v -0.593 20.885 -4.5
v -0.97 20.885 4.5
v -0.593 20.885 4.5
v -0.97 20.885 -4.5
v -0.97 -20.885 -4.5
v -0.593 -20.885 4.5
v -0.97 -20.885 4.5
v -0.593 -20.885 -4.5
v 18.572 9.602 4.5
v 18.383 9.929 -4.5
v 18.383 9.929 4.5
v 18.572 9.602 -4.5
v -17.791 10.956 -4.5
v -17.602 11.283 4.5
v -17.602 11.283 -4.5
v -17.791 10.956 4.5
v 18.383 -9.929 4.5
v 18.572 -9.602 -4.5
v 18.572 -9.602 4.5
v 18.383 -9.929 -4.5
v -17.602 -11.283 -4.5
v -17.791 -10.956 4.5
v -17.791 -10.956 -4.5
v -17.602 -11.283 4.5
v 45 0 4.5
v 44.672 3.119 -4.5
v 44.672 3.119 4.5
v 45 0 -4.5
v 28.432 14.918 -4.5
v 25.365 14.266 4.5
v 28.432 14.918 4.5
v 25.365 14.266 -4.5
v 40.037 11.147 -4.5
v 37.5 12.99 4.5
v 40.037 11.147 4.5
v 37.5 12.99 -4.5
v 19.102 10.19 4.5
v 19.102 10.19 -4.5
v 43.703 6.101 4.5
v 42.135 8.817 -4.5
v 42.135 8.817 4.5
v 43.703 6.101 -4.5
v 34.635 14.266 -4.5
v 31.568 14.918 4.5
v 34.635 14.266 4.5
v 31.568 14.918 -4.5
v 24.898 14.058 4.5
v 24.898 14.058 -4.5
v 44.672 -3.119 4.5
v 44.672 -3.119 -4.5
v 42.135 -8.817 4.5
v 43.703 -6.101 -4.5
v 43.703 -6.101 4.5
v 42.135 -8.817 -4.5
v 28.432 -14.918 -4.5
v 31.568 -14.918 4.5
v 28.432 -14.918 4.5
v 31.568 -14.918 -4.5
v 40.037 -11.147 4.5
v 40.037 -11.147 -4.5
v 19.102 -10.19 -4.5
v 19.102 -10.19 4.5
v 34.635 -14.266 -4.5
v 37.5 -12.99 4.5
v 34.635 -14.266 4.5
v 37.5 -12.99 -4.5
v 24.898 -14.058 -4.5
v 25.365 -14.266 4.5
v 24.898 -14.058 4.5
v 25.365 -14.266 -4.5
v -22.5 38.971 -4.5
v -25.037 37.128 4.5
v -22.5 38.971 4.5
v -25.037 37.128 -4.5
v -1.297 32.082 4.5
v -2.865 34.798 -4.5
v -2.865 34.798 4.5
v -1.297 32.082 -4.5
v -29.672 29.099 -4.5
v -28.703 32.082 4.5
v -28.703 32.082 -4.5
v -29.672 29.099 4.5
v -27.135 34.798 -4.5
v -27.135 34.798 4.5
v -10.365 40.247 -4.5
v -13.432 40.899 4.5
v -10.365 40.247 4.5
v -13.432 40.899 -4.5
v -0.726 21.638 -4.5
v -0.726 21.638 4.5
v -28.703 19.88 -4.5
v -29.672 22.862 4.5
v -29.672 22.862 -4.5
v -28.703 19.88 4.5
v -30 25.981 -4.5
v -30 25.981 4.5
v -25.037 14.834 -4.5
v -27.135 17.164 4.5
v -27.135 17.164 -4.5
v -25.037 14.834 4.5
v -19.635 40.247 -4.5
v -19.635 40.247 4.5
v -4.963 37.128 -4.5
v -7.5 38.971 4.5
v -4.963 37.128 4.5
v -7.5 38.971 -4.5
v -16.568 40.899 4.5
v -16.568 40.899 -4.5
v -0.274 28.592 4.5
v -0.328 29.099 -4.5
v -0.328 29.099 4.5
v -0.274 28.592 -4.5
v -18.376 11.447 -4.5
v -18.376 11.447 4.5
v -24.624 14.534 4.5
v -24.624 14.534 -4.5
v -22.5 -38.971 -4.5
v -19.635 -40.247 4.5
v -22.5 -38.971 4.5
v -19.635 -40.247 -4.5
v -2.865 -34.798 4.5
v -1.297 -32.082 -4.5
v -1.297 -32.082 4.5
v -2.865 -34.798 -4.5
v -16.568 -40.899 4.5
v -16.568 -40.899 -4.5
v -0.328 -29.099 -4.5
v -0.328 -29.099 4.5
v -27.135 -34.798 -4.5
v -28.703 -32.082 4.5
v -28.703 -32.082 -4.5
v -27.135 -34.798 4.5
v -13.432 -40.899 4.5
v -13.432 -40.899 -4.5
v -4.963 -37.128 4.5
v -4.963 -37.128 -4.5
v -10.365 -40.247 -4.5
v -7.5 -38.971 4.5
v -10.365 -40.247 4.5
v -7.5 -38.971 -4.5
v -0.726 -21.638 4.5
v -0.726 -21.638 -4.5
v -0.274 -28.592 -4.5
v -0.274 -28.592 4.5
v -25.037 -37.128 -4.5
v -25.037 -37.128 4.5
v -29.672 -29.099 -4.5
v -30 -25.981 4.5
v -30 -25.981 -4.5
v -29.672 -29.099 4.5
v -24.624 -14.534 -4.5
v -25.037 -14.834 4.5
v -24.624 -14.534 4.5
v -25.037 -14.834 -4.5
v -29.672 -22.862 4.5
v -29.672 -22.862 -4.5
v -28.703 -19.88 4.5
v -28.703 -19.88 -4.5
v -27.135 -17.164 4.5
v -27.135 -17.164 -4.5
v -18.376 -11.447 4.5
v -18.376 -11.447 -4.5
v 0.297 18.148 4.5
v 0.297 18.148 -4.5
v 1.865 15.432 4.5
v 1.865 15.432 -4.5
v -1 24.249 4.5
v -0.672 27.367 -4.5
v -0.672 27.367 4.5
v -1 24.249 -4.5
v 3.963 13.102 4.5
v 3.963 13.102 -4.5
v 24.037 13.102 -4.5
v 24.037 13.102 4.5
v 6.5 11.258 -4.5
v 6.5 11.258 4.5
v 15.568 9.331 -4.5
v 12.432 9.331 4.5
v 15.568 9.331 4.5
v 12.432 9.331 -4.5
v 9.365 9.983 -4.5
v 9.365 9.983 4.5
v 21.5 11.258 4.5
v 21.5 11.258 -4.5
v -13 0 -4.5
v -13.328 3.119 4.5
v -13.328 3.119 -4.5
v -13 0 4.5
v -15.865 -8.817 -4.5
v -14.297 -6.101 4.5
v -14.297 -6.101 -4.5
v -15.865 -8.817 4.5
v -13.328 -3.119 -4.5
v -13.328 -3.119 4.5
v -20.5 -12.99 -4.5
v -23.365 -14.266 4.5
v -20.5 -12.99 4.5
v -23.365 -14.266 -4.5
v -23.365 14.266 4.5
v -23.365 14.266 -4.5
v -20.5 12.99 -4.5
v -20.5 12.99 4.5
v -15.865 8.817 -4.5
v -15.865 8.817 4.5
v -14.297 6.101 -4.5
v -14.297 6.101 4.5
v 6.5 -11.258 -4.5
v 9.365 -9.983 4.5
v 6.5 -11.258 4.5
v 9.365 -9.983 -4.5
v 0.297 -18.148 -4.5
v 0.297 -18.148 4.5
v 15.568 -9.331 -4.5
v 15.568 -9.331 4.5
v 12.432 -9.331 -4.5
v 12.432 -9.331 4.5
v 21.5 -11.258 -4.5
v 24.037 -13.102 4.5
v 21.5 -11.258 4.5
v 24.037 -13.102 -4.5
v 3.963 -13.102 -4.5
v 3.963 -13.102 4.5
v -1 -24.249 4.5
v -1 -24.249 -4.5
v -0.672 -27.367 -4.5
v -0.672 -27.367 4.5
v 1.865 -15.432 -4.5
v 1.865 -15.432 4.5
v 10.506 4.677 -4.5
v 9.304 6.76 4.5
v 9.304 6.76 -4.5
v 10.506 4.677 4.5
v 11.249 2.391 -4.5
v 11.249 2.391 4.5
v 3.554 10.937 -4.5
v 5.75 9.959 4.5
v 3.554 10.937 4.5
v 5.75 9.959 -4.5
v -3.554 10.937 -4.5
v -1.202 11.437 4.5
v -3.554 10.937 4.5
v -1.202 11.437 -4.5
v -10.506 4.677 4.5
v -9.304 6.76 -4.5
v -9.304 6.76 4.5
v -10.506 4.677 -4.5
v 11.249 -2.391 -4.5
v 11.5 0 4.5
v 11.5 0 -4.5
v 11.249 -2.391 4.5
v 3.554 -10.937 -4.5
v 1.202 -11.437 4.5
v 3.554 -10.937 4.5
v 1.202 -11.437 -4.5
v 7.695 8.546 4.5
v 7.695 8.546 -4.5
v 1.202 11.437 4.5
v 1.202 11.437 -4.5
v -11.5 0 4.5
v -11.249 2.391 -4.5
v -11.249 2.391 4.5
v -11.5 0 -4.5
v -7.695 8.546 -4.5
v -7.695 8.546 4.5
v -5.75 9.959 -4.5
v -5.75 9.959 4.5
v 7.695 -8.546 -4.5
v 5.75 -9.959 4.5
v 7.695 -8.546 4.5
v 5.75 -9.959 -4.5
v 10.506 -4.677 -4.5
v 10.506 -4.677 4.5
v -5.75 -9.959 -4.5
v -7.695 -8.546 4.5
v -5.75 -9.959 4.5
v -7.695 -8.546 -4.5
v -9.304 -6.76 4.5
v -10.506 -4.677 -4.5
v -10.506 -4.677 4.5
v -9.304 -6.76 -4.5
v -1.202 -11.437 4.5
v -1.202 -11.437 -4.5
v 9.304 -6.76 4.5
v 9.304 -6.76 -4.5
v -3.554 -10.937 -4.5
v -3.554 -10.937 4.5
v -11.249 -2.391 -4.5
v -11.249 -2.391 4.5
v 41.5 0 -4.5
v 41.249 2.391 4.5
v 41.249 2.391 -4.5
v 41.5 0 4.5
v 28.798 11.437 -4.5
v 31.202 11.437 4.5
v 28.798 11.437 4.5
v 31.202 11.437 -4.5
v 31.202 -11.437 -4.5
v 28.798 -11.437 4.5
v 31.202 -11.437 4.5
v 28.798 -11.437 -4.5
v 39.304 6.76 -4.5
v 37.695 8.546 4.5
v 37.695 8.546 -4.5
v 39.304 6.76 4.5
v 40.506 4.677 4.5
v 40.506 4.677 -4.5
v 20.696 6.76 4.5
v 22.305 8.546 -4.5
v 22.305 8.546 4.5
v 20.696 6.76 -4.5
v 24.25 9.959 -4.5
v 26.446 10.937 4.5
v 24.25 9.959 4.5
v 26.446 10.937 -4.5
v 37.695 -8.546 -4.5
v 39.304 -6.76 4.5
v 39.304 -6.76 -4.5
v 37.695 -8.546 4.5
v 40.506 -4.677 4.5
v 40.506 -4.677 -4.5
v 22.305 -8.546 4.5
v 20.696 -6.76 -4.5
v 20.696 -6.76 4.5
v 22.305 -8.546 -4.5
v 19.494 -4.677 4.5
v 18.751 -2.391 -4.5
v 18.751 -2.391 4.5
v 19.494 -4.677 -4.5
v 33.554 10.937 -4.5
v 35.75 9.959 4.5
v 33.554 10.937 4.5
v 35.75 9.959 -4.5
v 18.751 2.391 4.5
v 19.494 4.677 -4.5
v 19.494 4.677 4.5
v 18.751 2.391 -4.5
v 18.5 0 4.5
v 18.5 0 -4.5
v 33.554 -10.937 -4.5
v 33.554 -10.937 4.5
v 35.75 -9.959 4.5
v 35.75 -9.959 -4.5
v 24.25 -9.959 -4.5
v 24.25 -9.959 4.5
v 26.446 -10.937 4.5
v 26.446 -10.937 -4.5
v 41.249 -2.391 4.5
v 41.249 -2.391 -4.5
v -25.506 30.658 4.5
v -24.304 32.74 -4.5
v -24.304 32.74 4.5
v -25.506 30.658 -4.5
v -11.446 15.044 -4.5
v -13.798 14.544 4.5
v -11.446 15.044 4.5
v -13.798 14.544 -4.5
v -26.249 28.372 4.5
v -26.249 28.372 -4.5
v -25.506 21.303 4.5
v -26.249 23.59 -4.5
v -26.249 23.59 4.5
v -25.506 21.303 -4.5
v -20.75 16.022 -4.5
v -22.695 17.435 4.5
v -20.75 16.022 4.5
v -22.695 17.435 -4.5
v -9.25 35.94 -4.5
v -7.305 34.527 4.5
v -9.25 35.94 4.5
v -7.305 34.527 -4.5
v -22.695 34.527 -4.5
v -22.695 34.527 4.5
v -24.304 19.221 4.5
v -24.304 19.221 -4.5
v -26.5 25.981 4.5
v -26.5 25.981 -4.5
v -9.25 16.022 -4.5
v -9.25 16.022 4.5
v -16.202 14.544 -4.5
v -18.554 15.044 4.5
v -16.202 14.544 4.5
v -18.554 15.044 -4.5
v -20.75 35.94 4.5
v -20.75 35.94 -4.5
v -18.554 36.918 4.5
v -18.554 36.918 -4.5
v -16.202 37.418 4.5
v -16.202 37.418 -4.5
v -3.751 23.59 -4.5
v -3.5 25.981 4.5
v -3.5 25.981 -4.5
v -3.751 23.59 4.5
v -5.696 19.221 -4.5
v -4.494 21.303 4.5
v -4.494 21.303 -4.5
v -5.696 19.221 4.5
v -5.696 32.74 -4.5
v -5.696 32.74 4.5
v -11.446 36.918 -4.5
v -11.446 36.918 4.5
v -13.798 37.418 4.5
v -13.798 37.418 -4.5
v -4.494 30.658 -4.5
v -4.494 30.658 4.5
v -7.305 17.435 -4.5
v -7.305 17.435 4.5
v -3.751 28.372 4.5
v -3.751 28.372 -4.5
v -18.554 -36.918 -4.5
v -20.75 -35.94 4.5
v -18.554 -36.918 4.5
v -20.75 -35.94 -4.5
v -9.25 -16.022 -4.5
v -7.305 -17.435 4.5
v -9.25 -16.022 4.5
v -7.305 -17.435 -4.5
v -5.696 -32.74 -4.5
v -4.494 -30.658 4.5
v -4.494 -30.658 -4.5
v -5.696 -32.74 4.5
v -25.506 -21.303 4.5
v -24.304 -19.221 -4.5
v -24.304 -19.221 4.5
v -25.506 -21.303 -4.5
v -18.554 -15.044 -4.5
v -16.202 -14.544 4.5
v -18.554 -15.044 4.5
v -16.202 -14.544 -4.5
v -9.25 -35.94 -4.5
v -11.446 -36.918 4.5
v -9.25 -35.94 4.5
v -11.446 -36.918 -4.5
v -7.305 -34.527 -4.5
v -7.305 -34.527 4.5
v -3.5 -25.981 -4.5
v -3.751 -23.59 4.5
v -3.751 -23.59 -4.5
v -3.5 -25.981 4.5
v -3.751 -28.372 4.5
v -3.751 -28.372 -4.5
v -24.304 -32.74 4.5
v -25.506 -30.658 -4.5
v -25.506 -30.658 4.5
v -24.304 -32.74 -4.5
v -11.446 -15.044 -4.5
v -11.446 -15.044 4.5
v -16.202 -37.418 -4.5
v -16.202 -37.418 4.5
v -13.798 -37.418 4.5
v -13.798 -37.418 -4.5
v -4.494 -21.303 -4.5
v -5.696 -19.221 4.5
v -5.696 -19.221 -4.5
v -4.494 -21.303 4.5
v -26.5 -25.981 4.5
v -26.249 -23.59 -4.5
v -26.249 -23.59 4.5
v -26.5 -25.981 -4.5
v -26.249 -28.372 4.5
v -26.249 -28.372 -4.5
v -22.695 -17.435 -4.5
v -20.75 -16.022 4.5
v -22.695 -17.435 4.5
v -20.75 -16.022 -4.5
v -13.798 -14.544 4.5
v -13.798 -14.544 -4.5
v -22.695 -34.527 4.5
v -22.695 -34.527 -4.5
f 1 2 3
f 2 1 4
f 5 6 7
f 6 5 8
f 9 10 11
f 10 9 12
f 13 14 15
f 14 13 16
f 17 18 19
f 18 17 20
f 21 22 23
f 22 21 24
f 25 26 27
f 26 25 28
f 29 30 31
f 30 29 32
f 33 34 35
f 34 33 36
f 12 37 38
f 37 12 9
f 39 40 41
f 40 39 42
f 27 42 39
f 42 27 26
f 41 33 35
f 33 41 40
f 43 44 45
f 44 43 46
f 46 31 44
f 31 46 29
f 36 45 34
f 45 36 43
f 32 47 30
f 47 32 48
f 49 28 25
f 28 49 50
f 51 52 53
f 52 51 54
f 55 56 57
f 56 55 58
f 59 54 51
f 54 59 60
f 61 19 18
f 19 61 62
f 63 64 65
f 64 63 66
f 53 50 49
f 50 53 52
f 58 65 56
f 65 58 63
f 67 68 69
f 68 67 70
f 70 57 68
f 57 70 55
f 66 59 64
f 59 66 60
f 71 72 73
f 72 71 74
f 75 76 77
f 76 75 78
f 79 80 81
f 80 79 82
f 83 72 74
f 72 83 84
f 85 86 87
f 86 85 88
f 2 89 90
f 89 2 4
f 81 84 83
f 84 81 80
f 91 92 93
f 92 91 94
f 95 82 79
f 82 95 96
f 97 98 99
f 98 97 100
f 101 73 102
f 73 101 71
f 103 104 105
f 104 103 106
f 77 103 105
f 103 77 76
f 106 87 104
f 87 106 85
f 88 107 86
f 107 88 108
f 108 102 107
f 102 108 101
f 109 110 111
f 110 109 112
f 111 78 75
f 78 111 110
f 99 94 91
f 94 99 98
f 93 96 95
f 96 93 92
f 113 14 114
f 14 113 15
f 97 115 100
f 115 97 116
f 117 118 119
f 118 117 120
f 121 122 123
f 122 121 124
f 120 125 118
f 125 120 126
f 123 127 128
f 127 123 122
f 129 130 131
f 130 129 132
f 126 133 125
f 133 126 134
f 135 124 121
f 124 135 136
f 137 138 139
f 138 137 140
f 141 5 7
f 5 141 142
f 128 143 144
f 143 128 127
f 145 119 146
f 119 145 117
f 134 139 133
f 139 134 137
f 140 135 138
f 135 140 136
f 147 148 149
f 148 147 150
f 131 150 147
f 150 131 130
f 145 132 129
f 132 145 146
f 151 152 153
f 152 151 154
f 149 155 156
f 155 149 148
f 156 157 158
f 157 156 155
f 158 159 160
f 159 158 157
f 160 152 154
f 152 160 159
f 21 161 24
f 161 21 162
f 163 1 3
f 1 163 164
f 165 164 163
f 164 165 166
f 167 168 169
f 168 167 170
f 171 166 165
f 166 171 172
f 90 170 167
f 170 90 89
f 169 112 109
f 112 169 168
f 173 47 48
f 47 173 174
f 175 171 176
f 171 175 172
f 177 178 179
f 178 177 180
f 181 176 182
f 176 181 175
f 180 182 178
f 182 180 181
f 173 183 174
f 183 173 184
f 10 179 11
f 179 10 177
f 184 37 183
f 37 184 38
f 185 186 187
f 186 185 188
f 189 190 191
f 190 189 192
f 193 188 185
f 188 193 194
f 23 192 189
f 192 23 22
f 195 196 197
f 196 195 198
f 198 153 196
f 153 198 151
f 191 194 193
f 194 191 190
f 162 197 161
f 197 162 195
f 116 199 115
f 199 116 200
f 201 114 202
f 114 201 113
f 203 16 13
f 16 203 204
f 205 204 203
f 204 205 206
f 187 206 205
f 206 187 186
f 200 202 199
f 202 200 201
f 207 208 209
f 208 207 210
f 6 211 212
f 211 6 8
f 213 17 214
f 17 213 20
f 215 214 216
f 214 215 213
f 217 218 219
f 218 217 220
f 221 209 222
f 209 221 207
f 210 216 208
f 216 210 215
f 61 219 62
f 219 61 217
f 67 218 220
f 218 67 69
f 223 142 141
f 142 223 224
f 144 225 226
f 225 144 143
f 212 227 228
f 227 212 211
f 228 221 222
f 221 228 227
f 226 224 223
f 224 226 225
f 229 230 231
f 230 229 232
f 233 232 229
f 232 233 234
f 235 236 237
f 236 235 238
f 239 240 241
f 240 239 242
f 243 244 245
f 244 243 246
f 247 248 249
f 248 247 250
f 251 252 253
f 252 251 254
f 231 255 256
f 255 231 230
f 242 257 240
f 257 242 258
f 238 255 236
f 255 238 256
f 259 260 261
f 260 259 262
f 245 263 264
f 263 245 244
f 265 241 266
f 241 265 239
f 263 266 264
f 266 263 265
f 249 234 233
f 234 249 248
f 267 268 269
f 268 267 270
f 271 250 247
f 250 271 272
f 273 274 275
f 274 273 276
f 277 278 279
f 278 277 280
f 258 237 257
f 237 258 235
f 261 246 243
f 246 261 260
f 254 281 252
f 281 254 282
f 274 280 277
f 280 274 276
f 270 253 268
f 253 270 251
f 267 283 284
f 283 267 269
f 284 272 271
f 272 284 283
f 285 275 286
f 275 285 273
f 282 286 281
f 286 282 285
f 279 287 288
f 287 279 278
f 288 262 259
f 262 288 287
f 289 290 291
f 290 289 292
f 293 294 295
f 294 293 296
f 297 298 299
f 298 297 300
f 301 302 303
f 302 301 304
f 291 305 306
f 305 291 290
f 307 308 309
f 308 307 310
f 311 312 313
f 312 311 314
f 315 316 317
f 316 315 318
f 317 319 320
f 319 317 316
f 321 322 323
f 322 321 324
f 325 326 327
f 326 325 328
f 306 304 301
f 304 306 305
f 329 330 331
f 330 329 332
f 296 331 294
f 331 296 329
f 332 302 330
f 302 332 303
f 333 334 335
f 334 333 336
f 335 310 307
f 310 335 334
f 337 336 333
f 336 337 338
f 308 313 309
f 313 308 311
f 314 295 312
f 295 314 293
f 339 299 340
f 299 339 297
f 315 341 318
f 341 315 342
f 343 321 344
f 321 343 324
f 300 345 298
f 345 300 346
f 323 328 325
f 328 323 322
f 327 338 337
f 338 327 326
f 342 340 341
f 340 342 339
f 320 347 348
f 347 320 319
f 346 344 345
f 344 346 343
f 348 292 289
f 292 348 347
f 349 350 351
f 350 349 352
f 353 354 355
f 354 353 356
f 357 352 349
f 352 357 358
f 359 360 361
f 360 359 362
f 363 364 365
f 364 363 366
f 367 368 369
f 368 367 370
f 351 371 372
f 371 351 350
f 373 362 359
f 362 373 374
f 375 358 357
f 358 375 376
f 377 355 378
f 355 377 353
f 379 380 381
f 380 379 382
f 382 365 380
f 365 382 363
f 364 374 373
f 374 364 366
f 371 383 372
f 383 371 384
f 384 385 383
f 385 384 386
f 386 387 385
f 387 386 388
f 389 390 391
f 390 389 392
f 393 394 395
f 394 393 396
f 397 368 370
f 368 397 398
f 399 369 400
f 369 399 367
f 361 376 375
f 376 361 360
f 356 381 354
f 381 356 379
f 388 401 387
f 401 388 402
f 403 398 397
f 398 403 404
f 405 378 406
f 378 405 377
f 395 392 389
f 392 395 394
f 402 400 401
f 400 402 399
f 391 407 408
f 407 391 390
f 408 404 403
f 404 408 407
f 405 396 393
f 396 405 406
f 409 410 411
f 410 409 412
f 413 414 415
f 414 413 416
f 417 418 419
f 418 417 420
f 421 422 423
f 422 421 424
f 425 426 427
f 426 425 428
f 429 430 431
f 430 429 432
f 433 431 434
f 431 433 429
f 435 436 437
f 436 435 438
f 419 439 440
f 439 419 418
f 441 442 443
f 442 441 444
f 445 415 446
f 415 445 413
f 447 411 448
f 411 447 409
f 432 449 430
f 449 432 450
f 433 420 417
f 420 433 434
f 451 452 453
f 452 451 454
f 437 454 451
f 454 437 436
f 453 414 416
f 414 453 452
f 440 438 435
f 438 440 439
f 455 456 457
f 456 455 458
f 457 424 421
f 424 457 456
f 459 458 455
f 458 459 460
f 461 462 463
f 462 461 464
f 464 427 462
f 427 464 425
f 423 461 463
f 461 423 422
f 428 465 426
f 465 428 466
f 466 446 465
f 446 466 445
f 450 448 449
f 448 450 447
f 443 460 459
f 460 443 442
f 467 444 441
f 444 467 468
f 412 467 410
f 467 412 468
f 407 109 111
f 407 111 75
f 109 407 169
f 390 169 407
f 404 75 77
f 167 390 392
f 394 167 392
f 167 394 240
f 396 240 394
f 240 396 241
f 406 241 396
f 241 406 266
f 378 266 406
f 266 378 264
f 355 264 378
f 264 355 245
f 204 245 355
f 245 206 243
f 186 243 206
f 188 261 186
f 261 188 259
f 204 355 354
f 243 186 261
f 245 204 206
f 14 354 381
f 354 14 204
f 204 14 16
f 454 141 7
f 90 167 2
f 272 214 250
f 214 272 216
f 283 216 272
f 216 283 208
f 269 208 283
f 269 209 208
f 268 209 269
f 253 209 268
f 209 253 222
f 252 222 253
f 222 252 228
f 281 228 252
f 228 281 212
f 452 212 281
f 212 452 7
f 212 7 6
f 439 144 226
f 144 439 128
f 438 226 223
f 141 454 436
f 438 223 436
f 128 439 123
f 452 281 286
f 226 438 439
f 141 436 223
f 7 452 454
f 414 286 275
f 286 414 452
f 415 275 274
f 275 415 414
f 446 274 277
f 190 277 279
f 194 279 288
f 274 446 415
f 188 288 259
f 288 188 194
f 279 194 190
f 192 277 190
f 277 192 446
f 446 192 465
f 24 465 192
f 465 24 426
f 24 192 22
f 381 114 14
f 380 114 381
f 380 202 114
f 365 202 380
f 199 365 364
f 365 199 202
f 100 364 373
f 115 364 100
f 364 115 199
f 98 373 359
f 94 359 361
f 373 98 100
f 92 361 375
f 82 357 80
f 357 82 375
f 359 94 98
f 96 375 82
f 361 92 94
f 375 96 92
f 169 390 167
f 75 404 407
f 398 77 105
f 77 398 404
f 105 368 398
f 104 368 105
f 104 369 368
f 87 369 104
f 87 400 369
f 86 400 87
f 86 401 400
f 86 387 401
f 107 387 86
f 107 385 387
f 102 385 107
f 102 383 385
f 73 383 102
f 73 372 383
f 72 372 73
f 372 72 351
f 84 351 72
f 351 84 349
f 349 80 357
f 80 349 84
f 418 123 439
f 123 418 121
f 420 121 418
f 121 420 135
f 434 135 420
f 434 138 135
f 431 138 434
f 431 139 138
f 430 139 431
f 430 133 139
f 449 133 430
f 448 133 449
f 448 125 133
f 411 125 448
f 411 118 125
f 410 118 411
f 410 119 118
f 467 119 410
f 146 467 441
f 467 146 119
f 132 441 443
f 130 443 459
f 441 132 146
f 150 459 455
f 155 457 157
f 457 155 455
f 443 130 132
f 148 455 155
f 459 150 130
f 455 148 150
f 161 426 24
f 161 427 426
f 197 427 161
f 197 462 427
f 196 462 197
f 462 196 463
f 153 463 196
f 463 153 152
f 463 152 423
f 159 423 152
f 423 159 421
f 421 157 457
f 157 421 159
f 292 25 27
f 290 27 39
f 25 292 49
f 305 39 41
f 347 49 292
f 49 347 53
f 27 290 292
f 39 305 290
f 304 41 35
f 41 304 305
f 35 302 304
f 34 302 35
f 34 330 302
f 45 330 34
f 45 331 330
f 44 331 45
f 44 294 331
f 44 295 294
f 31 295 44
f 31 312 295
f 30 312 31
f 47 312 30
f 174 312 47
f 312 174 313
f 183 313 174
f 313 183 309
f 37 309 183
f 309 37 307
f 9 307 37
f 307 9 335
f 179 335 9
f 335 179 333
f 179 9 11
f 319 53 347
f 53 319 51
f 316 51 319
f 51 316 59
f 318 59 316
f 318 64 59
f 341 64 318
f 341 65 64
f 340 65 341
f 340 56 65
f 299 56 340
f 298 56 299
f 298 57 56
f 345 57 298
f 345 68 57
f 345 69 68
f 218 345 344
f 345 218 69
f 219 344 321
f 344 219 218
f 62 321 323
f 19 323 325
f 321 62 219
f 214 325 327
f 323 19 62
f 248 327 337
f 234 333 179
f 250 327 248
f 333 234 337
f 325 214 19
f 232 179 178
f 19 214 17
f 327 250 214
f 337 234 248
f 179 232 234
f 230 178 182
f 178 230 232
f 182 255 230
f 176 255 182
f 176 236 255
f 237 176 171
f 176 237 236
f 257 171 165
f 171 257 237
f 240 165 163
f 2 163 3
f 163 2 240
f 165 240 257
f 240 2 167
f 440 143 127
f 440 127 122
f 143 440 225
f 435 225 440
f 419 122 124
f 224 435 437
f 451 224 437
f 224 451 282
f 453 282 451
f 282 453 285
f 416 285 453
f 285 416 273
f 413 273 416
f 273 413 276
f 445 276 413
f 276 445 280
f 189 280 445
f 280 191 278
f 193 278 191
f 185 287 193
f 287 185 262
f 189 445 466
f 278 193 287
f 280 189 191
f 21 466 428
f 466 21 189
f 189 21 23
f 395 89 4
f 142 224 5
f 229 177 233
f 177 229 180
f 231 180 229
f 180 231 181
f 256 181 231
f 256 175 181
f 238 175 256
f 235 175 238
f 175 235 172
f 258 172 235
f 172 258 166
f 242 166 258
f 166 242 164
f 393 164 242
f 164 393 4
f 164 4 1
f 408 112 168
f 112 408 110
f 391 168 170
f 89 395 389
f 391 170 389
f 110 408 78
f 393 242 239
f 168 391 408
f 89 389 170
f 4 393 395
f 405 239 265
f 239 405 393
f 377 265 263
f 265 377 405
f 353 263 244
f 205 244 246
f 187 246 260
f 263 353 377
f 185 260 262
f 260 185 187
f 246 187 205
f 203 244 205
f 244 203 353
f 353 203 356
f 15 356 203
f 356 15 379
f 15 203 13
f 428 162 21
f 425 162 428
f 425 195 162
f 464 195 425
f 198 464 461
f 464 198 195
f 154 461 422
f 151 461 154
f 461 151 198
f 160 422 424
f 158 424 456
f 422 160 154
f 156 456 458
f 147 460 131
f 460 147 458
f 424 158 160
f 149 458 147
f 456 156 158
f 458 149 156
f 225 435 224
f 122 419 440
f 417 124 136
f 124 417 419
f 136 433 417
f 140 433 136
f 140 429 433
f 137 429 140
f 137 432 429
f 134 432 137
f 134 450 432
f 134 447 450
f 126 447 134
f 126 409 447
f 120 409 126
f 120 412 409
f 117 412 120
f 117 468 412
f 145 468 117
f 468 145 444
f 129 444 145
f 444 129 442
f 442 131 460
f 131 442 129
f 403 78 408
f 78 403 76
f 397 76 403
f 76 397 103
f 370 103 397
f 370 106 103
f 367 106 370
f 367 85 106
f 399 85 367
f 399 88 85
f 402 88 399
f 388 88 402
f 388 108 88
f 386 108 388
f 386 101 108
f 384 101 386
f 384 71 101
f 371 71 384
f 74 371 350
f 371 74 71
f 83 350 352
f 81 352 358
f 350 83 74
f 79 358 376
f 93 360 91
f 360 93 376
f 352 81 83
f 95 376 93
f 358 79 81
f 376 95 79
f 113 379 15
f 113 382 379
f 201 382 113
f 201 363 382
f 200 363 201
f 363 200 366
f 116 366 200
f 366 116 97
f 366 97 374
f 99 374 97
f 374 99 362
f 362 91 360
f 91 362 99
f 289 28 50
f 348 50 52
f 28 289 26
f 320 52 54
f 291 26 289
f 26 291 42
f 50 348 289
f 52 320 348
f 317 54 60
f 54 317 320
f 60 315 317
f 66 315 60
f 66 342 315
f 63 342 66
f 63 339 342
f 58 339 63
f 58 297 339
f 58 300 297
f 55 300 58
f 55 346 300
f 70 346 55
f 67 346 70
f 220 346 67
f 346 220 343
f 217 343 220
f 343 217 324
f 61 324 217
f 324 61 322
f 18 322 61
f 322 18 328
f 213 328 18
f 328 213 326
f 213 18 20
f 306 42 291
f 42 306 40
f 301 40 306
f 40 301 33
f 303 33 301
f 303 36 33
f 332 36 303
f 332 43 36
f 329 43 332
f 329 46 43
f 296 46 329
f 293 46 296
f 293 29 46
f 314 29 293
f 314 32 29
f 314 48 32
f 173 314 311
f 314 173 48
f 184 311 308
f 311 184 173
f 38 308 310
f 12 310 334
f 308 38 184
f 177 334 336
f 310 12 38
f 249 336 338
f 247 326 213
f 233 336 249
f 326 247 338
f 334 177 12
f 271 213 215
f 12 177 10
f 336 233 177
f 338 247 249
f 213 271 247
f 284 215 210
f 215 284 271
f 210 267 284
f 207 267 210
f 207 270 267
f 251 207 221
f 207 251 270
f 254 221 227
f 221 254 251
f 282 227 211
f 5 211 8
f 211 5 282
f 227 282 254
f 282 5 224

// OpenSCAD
module tuoluo(){
    difference(){
        cube([500,500,10],center=true);
        rotate([0,0,0])
        translate([0,0,0])
        cylinder(h=100,r=21,center=true);
    
        rotate([0,0,0])
        translate([30,0,0])
        cylinder(h=100,r=15,center=true);
    
        rotate([0,0,120])
        translate([30,0,0])
        cylinder(h=100,r=15,center=true);
    
        rotate([0,0,240])
        translate([30,0,0])
        cylinder(h=100,r=15,center=true);    
    }
    
    rotate([0,0,60])
    translate([28,0,0])
    cylinder(h=100,r=15,center=true);
    rotate([0,0,180])
    translate([28,0,0])
    cylinder(h=100,r=15,center=true);
    rotate([0,0,300])
    translate([28,0,0])
    cylinder(h=100,r=15,center=true);
    
    

    rotate([0,0,0])
    translate([0,0,0])
    cylinder(h=100,r=11.5,center=true);

    rotate([0,0,0])
    translate([30,0,0])
    cylinder(h=100,r=11.5,center=true);

    rotate([0,0,120])
    translate([30,0,0])
    cylinder(h=100,r=23/2,center=true);

    rotate([0,0,240])
    translate([60/2,0,0])
    cylinder(h=100,r=23/2,center=true);
    
}
difference(){
    cube([200,200,9],center=true);
    tuoluo();
}
